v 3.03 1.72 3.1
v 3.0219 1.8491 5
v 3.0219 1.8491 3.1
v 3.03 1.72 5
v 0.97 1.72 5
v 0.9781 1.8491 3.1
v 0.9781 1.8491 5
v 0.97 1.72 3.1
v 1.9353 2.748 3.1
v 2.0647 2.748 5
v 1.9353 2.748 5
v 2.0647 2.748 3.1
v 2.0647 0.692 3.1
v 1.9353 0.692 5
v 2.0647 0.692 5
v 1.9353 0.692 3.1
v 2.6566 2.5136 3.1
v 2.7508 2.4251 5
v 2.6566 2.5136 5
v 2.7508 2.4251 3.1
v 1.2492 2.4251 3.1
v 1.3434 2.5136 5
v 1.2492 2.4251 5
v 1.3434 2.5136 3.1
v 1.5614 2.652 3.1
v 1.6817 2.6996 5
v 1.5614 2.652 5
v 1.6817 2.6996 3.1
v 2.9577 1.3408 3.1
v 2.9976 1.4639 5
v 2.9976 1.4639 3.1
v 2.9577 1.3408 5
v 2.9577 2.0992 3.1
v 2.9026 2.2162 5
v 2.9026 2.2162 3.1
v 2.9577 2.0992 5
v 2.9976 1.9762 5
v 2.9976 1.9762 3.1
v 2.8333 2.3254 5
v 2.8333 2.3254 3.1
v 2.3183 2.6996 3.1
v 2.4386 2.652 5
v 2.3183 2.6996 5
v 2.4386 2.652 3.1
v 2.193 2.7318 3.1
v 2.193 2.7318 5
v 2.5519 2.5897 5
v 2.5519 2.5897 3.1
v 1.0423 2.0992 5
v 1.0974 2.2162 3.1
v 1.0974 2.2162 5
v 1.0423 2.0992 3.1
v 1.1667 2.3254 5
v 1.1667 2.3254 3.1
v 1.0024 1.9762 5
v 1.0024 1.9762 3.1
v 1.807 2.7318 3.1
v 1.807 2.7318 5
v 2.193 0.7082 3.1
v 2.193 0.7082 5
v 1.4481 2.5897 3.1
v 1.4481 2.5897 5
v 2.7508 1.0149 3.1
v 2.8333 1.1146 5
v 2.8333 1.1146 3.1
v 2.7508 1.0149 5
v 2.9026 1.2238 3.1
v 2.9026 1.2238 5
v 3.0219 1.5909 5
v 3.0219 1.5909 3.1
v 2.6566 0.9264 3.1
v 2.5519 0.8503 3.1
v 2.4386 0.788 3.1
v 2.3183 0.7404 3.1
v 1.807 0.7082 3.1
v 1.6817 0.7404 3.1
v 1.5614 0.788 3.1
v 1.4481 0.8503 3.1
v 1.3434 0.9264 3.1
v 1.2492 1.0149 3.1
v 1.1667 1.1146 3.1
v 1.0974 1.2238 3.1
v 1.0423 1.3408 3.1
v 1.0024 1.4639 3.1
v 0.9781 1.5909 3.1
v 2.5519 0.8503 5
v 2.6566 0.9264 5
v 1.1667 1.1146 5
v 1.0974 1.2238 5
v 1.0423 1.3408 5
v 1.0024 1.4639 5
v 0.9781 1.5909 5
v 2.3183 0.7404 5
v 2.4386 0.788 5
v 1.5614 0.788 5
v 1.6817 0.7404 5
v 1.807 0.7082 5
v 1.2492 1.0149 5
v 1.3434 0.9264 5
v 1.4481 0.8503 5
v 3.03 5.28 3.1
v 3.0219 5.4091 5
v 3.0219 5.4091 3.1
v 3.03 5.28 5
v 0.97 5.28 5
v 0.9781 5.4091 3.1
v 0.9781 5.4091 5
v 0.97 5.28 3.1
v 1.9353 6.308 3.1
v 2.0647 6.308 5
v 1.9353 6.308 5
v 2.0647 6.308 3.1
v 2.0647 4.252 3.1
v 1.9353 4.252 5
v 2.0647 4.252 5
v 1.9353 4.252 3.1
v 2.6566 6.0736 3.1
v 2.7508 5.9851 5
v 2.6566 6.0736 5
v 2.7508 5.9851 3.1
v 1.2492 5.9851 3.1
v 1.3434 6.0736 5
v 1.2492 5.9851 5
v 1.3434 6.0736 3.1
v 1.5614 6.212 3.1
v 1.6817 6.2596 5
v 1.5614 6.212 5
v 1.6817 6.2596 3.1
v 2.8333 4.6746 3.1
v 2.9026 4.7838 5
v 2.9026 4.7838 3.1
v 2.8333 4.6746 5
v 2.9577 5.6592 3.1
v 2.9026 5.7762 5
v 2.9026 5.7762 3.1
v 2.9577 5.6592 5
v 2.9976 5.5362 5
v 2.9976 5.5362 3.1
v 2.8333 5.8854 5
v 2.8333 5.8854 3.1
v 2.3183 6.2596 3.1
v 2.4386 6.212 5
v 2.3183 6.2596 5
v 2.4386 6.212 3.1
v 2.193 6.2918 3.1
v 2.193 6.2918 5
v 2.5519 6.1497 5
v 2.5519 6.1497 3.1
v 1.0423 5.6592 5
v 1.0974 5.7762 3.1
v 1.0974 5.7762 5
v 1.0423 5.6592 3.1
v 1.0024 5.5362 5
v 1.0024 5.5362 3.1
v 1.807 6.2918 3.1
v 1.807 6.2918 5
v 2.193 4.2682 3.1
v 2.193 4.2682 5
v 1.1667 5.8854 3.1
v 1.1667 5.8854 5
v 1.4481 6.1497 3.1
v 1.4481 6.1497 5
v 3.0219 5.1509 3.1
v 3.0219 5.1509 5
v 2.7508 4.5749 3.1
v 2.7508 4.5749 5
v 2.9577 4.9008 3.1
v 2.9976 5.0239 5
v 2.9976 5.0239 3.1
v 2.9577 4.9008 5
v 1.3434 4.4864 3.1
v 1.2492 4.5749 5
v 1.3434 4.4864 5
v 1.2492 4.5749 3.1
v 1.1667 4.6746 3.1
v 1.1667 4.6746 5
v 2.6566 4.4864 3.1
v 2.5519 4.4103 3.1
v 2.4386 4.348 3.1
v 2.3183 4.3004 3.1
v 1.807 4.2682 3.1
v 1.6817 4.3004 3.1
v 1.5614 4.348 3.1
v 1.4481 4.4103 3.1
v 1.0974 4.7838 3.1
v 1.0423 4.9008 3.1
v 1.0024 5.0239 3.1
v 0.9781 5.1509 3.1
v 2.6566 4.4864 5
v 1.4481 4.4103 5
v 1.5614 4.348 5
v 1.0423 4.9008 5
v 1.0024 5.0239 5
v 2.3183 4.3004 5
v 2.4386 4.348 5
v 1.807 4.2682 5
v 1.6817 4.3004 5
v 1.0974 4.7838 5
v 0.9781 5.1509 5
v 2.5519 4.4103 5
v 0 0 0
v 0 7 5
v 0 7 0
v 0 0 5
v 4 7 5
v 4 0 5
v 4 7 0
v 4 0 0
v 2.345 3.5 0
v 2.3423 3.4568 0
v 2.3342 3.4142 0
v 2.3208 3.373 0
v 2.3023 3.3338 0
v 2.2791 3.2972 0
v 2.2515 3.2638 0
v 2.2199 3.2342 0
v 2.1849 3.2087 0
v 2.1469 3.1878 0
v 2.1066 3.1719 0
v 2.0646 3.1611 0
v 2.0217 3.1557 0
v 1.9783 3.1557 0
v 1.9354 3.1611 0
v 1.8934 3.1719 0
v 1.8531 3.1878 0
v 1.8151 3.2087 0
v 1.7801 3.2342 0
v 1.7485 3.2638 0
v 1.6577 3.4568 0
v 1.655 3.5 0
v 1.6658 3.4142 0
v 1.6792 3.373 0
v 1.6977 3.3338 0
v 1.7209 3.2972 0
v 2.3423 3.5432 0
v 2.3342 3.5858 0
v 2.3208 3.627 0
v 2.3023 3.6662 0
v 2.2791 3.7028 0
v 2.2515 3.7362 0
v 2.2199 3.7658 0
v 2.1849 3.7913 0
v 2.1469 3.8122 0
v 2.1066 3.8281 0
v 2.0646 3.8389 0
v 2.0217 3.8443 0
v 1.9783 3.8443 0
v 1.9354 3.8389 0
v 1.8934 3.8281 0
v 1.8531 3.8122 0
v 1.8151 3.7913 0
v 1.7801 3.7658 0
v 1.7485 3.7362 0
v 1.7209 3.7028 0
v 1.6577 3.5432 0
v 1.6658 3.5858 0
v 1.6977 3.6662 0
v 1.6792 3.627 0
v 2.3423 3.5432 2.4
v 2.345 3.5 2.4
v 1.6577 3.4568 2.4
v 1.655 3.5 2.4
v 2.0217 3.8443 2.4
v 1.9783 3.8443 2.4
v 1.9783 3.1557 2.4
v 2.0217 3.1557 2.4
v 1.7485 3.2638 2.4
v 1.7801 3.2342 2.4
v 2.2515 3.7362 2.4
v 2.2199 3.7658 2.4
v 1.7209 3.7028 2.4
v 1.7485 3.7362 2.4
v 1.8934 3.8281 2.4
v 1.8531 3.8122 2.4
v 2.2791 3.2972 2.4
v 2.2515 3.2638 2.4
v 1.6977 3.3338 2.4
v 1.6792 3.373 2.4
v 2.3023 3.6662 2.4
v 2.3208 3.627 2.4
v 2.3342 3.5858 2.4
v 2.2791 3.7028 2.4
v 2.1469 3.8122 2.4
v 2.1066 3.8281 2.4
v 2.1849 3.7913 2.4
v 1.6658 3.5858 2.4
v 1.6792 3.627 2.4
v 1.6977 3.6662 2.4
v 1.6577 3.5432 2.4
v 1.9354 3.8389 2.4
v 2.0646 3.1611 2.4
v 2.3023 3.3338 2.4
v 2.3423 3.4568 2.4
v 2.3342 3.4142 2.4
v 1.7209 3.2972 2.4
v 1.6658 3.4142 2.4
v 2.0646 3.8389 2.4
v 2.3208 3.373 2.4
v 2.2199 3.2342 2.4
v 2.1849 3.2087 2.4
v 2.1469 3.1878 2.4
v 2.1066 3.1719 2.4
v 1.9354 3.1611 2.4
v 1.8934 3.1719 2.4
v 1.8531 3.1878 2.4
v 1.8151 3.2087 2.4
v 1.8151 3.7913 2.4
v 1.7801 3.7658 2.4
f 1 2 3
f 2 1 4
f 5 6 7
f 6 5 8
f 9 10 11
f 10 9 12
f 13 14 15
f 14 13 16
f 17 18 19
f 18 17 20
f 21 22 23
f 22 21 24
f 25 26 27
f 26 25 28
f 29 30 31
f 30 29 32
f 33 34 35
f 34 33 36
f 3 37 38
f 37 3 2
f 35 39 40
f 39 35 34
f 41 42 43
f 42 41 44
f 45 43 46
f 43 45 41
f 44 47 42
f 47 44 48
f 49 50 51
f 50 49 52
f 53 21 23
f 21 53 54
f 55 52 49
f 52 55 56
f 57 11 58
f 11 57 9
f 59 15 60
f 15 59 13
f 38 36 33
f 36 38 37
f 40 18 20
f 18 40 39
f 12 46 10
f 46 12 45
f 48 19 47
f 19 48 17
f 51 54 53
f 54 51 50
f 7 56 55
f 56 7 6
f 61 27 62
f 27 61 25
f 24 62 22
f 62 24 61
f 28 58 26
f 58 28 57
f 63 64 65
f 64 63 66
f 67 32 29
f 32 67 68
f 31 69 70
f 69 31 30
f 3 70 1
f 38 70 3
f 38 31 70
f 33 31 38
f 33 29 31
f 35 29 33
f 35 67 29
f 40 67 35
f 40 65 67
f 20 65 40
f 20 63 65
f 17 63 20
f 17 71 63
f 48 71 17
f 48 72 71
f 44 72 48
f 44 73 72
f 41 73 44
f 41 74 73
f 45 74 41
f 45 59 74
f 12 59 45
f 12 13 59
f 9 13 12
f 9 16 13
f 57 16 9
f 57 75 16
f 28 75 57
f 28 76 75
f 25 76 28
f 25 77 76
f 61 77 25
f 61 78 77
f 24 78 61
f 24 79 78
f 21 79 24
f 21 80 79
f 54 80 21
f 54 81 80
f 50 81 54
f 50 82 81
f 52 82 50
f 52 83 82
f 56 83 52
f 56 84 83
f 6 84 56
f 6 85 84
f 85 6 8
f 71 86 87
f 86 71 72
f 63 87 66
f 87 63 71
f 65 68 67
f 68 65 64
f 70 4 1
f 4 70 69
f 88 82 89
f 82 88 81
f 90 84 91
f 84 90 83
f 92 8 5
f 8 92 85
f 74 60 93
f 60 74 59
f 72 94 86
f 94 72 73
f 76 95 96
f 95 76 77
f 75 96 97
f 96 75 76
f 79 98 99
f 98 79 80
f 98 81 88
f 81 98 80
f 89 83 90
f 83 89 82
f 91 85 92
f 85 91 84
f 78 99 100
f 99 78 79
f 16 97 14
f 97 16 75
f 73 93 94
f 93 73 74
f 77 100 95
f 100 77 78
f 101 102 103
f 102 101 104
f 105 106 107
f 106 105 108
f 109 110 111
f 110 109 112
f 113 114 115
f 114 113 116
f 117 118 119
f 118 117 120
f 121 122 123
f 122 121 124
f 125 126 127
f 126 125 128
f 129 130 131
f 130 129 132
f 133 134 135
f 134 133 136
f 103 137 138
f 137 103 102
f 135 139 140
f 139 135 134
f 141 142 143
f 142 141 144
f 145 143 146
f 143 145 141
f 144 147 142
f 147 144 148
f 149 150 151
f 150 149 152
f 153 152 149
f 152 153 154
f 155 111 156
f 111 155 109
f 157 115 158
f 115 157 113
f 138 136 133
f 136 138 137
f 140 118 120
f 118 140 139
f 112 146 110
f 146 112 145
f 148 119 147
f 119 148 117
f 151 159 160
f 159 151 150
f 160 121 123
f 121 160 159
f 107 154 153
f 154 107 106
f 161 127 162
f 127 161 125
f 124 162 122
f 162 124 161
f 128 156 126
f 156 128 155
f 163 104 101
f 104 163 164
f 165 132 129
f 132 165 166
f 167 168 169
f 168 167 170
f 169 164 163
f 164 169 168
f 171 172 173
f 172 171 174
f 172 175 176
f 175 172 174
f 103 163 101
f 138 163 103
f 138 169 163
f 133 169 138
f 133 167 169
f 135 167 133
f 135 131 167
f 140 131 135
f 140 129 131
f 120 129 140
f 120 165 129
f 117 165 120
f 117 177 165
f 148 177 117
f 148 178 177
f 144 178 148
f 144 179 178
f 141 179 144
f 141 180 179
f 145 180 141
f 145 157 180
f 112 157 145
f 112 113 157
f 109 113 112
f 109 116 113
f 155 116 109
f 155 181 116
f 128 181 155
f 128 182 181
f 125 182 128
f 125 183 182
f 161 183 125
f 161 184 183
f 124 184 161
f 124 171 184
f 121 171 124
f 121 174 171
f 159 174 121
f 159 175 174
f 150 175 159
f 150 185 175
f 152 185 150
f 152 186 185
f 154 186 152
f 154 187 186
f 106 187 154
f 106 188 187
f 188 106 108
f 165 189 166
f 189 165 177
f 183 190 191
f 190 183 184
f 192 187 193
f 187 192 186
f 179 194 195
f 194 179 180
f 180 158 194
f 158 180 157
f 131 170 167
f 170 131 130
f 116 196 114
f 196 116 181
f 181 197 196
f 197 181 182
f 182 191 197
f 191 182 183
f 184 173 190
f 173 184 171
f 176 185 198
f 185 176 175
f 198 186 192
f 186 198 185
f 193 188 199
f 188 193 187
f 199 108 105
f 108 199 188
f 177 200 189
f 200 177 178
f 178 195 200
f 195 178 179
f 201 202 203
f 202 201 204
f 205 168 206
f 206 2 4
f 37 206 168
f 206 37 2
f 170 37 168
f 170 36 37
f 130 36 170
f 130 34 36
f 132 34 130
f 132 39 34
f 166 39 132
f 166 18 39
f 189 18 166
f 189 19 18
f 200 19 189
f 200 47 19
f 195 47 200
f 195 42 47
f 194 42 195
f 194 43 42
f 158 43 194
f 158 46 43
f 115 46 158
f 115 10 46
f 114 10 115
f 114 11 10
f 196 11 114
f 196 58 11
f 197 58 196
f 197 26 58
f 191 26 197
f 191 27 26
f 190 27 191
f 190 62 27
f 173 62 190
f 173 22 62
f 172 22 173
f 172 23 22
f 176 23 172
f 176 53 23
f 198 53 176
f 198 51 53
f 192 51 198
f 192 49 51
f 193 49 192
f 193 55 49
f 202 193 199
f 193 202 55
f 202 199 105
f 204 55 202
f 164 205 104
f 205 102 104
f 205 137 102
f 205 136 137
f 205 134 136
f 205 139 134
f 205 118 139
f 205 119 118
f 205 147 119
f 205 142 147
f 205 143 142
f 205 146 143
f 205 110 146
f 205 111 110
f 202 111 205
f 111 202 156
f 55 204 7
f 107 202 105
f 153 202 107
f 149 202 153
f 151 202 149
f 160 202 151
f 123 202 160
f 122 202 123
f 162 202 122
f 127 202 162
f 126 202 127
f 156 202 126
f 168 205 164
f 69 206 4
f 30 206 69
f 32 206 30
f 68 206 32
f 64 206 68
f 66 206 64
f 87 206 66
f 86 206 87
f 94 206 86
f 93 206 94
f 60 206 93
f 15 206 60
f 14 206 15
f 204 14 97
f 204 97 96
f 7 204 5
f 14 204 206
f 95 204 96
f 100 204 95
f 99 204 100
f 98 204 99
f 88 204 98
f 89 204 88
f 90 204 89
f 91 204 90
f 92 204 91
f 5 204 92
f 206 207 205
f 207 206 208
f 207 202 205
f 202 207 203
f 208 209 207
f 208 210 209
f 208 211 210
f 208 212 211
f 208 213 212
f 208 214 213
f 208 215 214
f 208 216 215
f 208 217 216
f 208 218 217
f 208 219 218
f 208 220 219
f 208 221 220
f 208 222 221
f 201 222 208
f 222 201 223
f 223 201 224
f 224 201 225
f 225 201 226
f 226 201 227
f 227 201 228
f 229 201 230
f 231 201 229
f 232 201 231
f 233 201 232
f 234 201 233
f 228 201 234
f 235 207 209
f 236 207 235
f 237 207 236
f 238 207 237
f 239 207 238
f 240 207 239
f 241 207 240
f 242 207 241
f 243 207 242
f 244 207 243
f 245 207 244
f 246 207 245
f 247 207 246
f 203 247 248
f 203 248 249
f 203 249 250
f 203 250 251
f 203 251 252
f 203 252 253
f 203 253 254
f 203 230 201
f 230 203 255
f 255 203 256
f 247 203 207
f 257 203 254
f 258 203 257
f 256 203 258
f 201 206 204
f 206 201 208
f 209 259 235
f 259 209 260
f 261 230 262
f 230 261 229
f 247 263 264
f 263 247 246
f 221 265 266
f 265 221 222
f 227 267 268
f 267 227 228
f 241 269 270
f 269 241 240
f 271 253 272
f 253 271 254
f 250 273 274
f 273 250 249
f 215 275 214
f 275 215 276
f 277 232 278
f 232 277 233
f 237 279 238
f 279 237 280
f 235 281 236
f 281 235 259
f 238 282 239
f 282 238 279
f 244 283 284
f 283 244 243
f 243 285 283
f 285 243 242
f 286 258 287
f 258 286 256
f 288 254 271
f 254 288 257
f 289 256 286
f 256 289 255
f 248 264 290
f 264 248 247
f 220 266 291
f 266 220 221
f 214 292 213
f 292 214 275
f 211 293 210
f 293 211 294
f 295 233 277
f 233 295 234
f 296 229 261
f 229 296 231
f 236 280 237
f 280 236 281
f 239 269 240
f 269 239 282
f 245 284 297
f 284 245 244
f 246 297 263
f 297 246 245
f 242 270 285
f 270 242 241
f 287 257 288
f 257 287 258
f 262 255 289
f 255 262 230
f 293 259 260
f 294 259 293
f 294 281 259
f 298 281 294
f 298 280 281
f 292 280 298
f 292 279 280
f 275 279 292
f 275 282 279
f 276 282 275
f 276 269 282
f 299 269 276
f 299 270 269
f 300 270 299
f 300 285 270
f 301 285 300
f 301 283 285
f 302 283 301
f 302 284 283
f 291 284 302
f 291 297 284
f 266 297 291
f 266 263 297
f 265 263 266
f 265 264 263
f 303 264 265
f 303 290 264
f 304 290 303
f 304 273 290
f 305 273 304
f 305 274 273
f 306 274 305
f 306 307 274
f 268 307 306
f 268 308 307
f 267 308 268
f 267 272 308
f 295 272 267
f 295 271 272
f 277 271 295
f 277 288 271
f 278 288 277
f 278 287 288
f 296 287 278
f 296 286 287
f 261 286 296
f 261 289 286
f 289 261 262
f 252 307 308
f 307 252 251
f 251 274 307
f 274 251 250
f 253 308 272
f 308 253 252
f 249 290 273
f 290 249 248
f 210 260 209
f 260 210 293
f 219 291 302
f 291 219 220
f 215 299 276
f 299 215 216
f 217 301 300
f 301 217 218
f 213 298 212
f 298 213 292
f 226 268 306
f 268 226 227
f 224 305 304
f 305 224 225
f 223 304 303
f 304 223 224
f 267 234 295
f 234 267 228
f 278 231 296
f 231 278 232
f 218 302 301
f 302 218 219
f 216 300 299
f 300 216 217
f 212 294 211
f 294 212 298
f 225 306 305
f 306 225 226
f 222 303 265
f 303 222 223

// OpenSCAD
//KD_BZ-3D_magnet_holder.scad
//09/02/2016    Kevin Donkers, Cronin Group, University of Glasgow
//OpenSCAD file creating a 3D model of a holder for two magnets to be attached at the end of a motor shaft
//All values in mm.

//Motor shaft paramters
shtshape = "cylinder";  //shaft shape
shtd=0.69;       //shaft diameter
shtl=2.5;       //shaft length

//Magnet parameters
magshape = "cylinder";  //magnet shape
magd = 2.06;       //magnet diameter (cylinder)
magh = 2;       //magnet height (cylinder)
magx = 1;       //magnet width (cube)
magy = 1;       //magnet length (cube)
magz = 1;       //magnet depth (cube)
mags = 1.5;       //magnet spacing

//Holder parameters
hldshape = "cube";  //holder shape
hldd = 7;           //holder diameter (cylinder)
hldh = 2.5;           //holder height (cylinder)
hldx = 4;           //holder width (cube)
hldy = 7;           //holder length (cube)
hldz = 5;           //holder depth (cube)

//Set translation parameters
x= hldshape=="cube" ? hldx : hldd;
y= hldshape=="cube" ? hldy : hldd;
z= hldshape=="cube" ? hldz : hldh;

//Construct 
difference(){
    //Holder
    if (hldshape=="cylinder"){
        translate([hldd/2,hldd/2,0])
        cylinder(h=hldh,d=hldd,center=false,$fn=100);
    }
    else if (hldshape=="cube"){
        cube([hldx,hldy,hldz],center=false);
    }
    //Magnets
    if (magshape=="cylinder"){
        translate([x/2,y/2-magd/2-mags/2,z-magh+0.1])
        cylinder(h=magh,d=magd,center=false,$fn=50);
        translate([x/2,y/2+magd/2+mags/2,z-magh+0.1])
        cylinder(h=magh,d=magd,center=false,$fn=50);
    }
    else if (magshape=="cube"){
        translate([x/2,y/2-magy/2-mags/2,z-magz/2+0.1])
        cube([magx,magy,magz],center=true);
        translate([x/2,y/2+magy/2+mags/2,z-magz/2+0.1])
        cube([magx,magy,magz],center=true);
    }
    //Shaft
    if (shtshape=="cylinder"){
        translate([x/2,y/2,-0.1])
        cylinder(h=shtl,d=shtd,center=false,$fn=50);
    }
}
